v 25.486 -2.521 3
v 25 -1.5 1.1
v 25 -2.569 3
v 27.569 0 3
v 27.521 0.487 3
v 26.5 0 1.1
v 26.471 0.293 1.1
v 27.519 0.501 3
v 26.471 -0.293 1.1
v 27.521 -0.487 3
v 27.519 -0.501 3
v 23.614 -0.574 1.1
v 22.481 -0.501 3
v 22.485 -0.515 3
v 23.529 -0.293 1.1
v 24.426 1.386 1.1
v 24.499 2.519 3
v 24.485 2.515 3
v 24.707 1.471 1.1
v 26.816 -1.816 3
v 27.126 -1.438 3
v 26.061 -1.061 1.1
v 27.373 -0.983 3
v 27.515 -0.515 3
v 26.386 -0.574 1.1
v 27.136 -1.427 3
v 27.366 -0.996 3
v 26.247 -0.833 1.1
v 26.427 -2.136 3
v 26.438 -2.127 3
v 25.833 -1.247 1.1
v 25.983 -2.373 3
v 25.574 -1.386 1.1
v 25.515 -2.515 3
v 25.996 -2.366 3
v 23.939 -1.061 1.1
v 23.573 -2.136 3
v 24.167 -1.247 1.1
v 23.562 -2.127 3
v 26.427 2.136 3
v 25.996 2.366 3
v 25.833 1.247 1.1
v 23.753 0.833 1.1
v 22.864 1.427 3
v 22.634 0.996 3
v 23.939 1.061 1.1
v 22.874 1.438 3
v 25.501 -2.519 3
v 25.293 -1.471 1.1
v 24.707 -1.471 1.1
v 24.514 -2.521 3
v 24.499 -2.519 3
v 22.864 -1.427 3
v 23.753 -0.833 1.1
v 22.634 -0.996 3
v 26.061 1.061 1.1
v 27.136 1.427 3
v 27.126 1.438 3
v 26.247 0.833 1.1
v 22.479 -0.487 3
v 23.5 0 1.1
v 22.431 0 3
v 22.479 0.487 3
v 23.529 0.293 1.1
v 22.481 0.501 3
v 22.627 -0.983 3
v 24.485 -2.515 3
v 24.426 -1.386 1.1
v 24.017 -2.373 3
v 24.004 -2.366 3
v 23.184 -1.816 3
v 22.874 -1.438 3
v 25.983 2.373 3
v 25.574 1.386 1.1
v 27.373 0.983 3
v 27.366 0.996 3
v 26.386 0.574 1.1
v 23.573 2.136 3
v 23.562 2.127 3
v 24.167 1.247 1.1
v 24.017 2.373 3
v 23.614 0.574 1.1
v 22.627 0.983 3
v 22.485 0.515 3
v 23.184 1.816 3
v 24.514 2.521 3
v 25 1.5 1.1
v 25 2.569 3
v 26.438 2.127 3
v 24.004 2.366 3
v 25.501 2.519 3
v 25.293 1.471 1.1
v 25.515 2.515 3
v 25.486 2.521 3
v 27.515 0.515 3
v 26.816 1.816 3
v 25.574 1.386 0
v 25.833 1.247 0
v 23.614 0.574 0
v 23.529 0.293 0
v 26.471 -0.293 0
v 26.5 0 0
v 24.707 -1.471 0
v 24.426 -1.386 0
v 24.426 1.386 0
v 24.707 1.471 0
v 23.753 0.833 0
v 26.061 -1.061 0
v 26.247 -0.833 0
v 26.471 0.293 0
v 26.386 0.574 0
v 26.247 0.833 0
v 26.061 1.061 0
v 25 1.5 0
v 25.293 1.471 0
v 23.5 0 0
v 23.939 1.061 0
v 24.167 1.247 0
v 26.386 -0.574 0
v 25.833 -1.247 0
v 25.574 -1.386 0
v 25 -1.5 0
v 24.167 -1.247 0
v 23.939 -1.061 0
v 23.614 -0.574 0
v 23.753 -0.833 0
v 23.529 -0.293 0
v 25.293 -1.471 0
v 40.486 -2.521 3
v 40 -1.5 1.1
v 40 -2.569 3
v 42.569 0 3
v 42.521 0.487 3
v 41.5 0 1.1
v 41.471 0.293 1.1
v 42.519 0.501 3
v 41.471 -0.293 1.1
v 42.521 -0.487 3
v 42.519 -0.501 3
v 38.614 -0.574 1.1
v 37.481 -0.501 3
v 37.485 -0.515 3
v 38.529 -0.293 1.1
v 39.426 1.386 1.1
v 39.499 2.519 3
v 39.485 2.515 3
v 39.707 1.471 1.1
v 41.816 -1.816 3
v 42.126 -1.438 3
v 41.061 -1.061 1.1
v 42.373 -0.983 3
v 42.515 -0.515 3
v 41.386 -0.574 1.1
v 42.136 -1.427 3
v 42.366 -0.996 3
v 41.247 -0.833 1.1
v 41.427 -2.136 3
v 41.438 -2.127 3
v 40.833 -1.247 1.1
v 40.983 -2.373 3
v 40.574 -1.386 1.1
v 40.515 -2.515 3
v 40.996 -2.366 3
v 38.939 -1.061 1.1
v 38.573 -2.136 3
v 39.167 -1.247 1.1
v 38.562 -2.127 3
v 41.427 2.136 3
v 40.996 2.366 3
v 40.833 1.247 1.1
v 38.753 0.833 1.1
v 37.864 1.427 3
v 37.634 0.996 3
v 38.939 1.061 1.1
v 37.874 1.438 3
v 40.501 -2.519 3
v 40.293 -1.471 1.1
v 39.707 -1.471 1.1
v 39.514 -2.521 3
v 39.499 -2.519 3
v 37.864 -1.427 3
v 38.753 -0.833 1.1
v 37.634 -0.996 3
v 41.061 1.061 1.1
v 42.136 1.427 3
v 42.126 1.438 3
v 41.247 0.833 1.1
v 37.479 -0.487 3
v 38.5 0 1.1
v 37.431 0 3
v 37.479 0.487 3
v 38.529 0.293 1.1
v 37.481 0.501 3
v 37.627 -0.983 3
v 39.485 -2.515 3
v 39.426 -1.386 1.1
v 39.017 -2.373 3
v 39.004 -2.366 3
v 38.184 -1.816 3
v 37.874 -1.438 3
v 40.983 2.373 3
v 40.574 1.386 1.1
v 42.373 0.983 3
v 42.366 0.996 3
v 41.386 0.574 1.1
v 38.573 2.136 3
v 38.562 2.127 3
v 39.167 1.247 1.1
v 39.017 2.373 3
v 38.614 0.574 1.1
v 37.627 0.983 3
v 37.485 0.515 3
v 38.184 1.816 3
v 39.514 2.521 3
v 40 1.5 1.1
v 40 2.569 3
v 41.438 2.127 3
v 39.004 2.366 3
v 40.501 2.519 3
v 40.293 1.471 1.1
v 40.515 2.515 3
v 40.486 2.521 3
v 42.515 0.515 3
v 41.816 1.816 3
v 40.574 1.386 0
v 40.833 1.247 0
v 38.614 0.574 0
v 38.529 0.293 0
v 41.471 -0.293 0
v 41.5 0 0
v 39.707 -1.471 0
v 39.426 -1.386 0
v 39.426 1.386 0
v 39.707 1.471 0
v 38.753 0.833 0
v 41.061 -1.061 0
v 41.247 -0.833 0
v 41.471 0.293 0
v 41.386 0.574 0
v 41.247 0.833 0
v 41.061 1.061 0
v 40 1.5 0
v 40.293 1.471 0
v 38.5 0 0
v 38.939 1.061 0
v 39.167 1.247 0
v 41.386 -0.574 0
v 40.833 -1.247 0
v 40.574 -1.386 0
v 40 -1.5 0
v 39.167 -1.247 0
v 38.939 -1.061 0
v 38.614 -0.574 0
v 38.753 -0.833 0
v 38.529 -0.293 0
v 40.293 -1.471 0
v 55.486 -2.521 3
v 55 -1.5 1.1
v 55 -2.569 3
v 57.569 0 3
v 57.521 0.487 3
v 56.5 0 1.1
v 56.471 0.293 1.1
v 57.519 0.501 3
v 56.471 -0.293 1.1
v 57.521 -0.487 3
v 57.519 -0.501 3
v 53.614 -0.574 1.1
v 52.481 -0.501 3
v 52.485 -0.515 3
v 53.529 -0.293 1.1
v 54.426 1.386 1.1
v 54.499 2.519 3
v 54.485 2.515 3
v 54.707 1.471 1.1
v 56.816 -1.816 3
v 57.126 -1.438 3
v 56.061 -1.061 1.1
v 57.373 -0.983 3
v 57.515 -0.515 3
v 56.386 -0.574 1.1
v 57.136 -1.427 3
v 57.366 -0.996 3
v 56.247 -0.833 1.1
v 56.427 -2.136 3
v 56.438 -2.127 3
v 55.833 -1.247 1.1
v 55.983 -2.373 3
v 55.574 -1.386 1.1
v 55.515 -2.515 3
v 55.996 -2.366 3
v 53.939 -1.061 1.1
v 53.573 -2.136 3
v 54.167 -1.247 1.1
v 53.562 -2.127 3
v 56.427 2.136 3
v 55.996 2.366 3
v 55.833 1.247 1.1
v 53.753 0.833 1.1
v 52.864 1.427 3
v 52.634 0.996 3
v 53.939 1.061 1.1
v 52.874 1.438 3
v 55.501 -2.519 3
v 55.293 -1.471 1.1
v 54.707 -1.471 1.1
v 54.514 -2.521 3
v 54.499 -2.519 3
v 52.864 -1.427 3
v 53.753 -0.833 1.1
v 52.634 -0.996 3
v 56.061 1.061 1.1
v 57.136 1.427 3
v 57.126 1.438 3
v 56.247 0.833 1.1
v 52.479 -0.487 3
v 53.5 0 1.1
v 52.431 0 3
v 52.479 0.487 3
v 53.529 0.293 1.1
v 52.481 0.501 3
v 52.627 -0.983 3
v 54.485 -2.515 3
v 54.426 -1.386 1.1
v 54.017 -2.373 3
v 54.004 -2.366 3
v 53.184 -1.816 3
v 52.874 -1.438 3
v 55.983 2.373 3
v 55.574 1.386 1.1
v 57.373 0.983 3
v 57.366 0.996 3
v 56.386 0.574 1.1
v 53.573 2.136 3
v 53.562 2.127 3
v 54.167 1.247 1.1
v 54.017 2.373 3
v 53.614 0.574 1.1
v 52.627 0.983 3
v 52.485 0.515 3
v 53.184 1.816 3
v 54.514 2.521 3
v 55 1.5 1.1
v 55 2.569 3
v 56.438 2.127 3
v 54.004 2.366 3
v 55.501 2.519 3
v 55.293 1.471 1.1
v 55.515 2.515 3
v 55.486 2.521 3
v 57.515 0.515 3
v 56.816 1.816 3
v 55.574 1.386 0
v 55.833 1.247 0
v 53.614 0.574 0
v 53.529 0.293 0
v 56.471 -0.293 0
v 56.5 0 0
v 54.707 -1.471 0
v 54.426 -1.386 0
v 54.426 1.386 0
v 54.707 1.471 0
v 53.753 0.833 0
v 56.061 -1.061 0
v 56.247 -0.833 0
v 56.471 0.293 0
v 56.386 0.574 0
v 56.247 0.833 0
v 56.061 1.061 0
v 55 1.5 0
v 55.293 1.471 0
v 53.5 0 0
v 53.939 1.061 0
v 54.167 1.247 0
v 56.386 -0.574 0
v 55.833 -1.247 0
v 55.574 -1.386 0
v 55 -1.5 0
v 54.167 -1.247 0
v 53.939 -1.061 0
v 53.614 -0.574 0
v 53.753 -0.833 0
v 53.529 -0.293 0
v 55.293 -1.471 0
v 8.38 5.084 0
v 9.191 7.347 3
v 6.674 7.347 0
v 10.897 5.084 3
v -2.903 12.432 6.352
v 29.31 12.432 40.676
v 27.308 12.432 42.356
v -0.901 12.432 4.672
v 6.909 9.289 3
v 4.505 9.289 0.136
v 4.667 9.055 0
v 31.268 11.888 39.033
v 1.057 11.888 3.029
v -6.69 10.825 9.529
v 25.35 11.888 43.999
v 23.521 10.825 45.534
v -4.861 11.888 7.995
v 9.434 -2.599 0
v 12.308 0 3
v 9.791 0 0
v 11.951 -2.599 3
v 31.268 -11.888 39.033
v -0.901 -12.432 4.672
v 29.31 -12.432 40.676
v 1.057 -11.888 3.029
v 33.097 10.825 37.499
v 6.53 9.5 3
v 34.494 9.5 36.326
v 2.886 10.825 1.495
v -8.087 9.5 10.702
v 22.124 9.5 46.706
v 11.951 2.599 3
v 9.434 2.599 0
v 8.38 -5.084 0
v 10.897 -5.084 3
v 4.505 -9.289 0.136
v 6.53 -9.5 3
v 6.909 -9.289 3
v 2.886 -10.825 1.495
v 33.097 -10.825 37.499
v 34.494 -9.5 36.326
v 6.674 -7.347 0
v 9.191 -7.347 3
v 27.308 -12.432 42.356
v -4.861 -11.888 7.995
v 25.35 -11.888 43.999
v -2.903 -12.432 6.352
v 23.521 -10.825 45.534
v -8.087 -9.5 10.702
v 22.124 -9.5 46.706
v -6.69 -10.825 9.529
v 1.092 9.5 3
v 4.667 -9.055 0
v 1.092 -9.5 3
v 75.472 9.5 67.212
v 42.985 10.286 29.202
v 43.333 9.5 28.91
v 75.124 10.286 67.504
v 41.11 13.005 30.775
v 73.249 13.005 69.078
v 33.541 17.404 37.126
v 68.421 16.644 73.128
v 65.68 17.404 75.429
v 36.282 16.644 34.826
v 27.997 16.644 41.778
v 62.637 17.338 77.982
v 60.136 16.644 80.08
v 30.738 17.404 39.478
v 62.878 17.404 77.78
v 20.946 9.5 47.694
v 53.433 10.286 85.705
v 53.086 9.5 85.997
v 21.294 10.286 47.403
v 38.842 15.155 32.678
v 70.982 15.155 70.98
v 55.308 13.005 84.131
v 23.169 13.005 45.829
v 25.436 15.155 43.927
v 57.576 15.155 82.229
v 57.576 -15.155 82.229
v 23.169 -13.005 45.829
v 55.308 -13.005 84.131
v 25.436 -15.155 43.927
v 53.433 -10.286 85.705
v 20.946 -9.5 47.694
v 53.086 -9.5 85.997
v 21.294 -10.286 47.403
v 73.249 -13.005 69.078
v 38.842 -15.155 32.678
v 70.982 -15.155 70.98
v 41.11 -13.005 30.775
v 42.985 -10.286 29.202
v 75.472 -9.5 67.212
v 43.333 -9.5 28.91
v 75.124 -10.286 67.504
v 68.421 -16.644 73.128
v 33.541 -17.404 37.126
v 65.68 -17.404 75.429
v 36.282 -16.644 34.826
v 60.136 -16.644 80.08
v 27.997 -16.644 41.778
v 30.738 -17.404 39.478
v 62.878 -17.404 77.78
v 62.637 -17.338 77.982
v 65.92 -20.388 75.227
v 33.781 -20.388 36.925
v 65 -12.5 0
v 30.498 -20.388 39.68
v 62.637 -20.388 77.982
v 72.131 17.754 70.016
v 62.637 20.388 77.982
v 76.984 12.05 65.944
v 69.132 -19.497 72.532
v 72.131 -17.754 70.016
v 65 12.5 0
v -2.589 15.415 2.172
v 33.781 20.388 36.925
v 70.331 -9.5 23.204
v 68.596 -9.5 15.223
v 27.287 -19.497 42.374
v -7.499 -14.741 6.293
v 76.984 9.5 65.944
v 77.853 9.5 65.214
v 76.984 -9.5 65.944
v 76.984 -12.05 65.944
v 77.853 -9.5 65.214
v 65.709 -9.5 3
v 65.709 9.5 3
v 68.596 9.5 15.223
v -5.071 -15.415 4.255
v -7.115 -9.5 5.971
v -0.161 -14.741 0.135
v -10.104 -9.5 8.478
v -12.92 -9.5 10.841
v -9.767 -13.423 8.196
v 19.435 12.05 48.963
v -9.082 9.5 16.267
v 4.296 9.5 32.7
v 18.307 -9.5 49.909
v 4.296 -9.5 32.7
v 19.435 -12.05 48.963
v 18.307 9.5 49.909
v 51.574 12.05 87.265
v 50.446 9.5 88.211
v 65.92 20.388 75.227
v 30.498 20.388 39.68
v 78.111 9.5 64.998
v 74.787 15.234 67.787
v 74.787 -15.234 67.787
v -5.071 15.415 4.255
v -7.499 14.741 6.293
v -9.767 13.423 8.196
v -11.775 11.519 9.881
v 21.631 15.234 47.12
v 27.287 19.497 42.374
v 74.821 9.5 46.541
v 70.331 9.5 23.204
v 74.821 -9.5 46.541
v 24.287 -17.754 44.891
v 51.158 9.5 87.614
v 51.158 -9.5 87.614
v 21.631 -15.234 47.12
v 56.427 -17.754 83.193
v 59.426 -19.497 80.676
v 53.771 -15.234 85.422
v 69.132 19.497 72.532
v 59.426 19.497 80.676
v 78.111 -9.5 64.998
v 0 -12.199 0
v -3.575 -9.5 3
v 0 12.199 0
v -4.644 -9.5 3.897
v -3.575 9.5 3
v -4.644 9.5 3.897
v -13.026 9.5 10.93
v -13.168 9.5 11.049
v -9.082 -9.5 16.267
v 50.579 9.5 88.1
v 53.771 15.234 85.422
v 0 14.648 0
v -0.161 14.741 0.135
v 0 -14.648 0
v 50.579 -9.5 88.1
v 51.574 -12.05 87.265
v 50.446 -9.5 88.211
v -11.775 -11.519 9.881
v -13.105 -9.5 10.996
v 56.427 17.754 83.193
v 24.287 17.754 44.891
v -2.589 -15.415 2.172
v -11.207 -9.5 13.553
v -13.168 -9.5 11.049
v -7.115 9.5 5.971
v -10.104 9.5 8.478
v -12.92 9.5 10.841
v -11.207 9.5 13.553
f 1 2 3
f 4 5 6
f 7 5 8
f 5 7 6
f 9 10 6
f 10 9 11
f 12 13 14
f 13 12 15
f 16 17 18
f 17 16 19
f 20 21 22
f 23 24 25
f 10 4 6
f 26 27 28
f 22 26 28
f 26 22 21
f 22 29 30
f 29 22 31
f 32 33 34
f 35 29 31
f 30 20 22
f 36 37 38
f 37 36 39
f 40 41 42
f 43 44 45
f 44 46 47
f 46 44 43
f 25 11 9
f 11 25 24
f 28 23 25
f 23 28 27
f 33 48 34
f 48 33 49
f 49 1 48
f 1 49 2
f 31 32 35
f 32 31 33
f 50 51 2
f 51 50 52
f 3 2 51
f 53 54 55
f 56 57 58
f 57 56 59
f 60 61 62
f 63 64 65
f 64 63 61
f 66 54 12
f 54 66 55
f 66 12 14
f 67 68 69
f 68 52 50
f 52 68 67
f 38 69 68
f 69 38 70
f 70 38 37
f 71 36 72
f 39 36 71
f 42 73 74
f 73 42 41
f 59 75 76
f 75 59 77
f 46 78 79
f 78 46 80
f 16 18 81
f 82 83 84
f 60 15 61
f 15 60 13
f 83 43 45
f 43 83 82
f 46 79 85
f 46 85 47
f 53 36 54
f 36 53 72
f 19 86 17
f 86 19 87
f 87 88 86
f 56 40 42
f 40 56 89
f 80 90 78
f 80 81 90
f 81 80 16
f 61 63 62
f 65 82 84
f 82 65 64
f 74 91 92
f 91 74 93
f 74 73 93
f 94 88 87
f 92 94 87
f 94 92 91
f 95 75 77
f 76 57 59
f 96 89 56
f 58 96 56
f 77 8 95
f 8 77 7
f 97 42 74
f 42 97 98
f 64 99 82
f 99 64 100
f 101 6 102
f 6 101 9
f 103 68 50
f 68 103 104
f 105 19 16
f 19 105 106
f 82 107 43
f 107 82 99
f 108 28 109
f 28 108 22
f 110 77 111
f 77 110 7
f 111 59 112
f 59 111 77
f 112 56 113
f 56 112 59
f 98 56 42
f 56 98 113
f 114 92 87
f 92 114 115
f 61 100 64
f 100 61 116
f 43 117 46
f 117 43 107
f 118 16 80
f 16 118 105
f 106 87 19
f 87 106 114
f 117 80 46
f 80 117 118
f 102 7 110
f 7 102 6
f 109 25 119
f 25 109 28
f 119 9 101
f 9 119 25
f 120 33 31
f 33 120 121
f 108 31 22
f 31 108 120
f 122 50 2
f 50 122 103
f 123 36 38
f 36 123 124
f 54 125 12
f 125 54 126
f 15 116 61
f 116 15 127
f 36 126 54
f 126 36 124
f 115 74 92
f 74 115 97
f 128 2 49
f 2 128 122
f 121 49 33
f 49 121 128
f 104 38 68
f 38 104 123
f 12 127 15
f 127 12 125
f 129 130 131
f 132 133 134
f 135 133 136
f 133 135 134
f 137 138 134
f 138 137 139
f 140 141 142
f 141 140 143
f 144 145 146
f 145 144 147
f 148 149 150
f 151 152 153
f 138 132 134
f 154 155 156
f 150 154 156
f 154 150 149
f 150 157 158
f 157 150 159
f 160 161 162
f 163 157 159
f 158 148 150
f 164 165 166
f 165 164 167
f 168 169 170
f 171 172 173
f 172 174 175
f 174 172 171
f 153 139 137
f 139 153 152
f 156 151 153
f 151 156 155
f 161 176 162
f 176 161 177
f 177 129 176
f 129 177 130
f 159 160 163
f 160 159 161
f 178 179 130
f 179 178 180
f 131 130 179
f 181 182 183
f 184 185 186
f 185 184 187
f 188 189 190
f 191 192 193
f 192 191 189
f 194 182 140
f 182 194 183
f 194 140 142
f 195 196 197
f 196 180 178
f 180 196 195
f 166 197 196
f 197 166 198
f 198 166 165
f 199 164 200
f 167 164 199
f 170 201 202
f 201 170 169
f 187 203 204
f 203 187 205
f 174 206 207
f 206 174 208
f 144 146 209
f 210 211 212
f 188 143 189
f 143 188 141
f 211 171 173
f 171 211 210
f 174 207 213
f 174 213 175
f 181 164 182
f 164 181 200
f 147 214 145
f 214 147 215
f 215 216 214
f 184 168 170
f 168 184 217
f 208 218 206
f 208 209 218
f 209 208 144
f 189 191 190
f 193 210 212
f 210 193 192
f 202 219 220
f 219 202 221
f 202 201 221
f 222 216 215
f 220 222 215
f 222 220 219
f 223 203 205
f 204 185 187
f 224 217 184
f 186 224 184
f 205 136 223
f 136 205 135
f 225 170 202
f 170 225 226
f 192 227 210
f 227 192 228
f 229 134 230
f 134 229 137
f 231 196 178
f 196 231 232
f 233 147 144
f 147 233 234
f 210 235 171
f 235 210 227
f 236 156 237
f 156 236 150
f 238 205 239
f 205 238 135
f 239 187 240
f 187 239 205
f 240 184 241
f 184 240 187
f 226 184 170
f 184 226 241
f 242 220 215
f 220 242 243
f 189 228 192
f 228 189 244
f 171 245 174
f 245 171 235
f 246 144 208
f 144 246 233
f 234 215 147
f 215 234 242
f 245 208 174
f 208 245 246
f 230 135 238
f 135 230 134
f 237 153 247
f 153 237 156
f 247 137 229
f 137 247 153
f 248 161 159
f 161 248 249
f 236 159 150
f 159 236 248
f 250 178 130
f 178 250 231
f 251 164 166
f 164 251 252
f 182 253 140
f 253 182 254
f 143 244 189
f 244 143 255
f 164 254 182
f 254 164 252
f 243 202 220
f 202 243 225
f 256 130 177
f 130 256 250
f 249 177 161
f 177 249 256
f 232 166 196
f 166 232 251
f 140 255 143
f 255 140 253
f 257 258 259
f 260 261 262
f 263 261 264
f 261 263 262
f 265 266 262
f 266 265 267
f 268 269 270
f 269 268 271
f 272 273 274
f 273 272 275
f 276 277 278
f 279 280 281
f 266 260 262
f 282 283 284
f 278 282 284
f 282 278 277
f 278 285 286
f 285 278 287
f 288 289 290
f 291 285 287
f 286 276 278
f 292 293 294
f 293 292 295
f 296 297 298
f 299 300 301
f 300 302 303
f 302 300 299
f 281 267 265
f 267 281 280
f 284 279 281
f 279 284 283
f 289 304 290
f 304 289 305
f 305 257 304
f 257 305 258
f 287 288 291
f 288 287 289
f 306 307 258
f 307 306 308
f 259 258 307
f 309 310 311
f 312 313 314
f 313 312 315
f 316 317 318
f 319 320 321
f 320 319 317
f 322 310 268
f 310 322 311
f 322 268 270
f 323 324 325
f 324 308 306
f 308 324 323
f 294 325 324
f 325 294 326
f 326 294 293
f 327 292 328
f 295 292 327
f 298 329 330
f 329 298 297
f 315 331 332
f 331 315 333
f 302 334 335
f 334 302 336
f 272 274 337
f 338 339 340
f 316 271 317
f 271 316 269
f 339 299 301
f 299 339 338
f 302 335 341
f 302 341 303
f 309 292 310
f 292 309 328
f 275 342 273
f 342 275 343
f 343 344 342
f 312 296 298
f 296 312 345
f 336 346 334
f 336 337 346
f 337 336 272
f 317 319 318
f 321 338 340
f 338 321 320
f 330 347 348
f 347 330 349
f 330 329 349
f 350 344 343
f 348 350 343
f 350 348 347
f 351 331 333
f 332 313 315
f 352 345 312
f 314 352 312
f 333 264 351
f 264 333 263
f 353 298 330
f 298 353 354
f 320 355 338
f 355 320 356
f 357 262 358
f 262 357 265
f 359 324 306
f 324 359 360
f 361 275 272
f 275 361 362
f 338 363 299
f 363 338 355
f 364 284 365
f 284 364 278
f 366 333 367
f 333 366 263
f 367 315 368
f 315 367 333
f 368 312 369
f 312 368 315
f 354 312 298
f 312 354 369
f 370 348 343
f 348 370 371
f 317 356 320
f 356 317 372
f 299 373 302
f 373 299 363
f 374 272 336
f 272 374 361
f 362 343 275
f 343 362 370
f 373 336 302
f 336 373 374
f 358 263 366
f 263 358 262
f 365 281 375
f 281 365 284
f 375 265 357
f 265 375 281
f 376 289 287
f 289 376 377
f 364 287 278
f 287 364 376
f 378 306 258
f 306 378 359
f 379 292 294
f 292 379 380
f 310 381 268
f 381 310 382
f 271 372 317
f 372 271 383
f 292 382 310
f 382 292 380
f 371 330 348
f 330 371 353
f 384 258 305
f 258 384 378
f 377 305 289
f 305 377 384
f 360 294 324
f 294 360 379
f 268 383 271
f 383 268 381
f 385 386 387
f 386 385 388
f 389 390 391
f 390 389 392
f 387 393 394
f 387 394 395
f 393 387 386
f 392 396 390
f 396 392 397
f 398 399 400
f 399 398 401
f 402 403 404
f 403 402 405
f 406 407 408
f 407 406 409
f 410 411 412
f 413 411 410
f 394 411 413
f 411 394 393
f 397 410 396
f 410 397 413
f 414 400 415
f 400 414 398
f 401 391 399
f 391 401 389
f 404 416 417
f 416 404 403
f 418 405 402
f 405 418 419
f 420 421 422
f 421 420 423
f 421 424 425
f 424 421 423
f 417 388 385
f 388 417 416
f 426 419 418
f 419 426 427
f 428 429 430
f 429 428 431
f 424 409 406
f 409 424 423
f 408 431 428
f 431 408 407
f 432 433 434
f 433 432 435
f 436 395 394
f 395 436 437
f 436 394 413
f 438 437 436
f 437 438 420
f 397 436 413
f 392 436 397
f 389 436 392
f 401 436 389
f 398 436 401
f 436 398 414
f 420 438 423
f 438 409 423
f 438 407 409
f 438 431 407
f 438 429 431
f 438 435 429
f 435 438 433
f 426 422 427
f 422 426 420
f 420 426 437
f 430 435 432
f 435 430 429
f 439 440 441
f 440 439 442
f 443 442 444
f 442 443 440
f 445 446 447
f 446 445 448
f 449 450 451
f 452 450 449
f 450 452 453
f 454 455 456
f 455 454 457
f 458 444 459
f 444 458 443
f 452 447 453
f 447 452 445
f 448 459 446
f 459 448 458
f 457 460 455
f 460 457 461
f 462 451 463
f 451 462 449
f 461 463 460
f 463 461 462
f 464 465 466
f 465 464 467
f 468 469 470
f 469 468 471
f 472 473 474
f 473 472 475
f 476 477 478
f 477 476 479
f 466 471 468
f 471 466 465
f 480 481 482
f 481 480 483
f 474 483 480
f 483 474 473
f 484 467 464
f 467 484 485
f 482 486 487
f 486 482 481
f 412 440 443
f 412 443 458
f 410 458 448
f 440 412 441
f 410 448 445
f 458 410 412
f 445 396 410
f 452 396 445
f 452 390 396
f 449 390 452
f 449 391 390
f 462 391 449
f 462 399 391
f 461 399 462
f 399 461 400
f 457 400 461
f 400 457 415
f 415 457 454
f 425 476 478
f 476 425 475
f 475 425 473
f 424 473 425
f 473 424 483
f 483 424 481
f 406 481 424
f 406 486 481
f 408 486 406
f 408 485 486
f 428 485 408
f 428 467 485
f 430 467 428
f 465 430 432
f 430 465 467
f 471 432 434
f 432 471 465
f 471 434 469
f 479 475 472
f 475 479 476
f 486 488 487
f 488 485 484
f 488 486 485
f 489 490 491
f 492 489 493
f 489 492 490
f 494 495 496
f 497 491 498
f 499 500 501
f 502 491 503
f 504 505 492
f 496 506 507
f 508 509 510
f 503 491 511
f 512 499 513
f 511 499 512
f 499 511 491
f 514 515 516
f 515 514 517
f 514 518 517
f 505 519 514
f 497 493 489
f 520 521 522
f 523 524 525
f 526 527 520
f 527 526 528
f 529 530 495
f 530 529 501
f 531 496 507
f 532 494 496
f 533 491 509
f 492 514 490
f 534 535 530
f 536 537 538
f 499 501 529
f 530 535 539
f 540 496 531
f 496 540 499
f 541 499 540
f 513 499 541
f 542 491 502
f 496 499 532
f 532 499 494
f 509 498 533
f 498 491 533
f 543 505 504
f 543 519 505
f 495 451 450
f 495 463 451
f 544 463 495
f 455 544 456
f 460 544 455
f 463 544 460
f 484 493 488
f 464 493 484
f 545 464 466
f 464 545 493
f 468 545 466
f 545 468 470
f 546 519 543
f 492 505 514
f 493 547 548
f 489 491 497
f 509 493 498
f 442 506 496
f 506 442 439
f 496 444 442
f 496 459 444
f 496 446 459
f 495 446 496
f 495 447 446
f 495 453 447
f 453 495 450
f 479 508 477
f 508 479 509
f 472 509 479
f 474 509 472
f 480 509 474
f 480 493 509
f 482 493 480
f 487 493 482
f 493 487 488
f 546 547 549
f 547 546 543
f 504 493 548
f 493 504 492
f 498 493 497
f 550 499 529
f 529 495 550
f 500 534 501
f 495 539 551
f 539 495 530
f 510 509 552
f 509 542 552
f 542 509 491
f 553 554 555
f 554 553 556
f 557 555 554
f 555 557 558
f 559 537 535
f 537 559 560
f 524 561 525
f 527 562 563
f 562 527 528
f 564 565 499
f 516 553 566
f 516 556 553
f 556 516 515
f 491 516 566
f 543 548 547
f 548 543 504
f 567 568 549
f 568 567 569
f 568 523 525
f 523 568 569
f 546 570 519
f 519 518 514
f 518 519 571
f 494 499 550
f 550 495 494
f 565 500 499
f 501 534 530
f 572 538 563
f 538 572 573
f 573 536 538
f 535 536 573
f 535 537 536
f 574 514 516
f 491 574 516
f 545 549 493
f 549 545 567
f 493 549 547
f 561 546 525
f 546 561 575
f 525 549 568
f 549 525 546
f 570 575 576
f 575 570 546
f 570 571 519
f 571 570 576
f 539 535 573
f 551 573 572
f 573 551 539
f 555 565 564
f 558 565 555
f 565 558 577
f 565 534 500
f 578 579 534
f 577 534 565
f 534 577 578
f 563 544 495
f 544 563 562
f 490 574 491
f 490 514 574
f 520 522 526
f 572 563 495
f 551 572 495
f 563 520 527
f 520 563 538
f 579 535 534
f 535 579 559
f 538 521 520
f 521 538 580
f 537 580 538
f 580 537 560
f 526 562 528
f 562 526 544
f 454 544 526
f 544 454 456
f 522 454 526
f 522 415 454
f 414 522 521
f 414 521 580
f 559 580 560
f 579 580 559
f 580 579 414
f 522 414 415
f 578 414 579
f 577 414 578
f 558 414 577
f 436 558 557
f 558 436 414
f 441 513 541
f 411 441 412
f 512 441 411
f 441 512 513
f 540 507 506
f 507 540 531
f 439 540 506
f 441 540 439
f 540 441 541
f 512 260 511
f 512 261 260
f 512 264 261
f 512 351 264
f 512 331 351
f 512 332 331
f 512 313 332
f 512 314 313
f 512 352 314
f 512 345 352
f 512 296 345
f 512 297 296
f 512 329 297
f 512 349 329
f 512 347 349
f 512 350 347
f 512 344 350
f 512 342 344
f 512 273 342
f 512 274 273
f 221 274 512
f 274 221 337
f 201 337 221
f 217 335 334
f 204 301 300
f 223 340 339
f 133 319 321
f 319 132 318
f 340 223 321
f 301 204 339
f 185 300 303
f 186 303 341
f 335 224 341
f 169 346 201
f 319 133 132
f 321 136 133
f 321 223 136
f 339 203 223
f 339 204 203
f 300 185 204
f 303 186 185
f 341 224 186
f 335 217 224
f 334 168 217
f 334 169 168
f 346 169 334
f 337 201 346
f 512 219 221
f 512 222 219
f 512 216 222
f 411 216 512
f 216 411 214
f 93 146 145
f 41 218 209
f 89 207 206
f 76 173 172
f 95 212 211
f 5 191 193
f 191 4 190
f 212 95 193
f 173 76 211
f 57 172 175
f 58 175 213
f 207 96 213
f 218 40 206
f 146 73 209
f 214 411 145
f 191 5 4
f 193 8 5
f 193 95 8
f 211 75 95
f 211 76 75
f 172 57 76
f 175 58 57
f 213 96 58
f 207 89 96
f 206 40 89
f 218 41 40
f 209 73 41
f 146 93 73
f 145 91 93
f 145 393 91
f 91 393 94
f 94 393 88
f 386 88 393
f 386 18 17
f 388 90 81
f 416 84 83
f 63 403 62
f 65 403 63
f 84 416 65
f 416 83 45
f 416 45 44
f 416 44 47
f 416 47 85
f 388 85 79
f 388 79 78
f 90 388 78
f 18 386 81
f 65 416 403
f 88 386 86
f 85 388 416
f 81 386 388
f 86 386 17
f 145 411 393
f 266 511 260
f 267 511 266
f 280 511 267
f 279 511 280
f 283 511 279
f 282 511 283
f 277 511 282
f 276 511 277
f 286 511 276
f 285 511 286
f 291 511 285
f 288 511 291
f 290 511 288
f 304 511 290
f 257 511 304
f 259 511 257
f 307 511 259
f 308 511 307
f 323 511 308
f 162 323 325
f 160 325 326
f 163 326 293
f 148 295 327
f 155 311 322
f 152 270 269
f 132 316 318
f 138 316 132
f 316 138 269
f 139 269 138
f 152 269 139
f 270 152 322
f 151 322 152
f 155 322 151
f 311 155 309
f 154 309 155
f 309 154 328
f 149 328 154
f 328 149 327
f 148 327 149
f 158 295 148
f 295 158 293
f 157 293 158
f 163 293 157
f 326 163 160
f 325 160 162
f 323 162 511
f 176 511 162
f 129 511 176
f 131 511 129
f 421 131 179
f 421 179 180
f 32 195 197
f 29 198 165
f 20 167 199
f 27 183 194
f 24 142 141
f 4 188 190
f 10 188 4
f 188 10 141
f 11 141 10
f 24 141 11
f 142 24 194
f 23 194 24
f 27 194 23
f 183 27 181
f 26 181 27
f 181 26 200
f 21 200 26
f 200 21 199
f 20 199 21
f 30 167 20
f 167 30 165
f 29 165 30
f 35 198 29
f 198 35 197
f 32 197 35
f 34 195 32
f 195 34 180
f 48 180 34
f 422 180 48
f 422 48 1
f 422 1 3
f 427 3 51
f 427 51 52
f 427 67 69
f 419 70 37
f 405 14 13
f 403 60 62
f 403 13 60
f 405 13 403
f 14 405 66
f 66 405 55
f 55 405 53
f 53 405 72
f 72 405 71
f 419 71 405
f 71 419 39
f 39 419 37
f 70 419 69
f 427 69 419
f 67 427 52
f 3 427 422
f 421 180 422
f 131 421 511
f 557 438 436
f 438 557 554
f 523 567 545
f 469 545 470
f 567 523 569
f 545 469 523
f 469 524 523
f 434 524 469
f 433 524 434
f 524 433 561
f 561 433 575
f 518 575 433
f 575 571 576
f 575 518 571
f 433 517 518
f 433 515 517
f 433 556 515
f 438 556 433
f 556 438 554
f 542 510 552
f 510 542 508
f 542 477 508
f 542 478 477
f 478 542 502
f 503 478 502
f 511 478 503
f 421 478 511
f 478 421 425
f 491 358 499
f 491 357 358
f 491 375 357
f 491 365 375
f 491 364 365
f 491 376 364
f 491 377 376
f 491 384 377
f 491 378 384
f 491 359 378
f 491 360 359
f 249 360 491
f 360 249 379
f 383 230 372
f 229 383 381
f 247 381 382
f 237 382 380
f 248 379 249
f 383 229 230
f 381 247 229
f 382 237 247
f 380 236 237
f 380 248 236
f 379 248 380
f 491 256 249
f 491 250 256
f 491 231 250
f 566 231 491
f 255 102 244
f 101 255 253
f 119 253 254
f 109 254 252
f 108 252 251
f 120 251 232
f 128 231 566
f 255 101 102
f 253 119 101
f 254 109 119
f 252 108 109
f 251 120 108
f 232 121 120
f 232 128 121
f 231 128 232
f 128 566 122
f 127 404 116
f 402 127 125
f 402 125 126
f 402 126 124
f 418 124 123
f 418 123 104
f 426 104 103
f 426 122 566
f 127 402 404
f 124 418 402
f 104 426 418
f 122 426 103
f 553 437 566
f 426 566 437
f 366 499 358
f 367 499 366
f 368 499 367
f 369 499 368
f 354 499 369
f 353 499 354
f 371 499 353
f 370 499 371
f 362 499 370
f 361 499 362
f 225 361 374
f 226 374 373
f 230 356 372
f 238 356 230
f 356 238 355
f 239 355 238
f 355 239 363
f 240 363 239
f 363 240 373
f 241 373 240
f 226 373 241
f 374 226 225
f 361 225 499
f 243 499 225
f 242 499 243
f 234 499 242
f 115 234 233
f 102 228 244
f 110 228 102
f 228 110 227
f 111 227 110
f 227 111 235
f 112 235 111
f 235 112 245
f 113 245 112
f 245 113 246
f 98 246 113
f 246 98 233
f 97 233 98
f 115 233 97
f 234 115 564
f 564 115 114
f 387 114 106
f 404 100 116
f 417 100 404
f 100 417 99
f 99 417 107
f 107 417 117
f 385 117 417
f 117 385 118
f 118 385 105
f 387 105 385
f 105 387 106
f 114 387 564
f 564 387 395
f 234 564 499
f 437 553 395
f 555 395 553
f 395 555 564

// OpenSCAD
angle=40;

inner_rad = 25/2;
outer_rad = 35/2;

inner_len = 50;
outer_len = 50;
total_len = outer_len+inner_len;

wall = 3;

top_slit = 10;

glueHolster();

module glueHolster(){
    
    difference(){
        union(){
            //gun
            hull(){
                rotate([0,angle,0]){
                    translate([inner_rad-outer_rad, 0, 0]) cylinder(r=inner_rad+wall, h=inner_len);
                    translate([0,0,inner_len]) cylinder(r=outer_rad+wall, h=outer_len);
                }
                translate([40,0,inner_len/4]) cube([inner_len, inner_rad*2, inner_len/2], center=true);
            }
        }
        
        rotate([0,angle,0]){
            translate([inner_rad-outer_rad,0,wall]) cylinder(r=inner_rad, h=total_len);
            translate([0,0,inner_len]) cylinder(r=outer_rad, h=total_len);
        }
        
        //heat channel
        translate([0,0,100+wall]) cube([200, inner_rad*2-wall*2, 200], center=true);
        
        //screw holes
        for(i=[25:15:60]) translate([i,0,wall]) screw_hole();
        
        //flatten base
        translate([0,0,-100]) cube([200,200,200], center=true);
    }
}

module screw_hole(){
    $fn=32;
    cap_rad = 5.25/2;
    rad = 3/2;
    cap_height = 2;
    
    translate([0,0,-cap_height+.1])
    cylinder(r1=rad, r2=cap_rad, h=cap_height);
    cylinder(r=rad, h=30, center=true);
}
